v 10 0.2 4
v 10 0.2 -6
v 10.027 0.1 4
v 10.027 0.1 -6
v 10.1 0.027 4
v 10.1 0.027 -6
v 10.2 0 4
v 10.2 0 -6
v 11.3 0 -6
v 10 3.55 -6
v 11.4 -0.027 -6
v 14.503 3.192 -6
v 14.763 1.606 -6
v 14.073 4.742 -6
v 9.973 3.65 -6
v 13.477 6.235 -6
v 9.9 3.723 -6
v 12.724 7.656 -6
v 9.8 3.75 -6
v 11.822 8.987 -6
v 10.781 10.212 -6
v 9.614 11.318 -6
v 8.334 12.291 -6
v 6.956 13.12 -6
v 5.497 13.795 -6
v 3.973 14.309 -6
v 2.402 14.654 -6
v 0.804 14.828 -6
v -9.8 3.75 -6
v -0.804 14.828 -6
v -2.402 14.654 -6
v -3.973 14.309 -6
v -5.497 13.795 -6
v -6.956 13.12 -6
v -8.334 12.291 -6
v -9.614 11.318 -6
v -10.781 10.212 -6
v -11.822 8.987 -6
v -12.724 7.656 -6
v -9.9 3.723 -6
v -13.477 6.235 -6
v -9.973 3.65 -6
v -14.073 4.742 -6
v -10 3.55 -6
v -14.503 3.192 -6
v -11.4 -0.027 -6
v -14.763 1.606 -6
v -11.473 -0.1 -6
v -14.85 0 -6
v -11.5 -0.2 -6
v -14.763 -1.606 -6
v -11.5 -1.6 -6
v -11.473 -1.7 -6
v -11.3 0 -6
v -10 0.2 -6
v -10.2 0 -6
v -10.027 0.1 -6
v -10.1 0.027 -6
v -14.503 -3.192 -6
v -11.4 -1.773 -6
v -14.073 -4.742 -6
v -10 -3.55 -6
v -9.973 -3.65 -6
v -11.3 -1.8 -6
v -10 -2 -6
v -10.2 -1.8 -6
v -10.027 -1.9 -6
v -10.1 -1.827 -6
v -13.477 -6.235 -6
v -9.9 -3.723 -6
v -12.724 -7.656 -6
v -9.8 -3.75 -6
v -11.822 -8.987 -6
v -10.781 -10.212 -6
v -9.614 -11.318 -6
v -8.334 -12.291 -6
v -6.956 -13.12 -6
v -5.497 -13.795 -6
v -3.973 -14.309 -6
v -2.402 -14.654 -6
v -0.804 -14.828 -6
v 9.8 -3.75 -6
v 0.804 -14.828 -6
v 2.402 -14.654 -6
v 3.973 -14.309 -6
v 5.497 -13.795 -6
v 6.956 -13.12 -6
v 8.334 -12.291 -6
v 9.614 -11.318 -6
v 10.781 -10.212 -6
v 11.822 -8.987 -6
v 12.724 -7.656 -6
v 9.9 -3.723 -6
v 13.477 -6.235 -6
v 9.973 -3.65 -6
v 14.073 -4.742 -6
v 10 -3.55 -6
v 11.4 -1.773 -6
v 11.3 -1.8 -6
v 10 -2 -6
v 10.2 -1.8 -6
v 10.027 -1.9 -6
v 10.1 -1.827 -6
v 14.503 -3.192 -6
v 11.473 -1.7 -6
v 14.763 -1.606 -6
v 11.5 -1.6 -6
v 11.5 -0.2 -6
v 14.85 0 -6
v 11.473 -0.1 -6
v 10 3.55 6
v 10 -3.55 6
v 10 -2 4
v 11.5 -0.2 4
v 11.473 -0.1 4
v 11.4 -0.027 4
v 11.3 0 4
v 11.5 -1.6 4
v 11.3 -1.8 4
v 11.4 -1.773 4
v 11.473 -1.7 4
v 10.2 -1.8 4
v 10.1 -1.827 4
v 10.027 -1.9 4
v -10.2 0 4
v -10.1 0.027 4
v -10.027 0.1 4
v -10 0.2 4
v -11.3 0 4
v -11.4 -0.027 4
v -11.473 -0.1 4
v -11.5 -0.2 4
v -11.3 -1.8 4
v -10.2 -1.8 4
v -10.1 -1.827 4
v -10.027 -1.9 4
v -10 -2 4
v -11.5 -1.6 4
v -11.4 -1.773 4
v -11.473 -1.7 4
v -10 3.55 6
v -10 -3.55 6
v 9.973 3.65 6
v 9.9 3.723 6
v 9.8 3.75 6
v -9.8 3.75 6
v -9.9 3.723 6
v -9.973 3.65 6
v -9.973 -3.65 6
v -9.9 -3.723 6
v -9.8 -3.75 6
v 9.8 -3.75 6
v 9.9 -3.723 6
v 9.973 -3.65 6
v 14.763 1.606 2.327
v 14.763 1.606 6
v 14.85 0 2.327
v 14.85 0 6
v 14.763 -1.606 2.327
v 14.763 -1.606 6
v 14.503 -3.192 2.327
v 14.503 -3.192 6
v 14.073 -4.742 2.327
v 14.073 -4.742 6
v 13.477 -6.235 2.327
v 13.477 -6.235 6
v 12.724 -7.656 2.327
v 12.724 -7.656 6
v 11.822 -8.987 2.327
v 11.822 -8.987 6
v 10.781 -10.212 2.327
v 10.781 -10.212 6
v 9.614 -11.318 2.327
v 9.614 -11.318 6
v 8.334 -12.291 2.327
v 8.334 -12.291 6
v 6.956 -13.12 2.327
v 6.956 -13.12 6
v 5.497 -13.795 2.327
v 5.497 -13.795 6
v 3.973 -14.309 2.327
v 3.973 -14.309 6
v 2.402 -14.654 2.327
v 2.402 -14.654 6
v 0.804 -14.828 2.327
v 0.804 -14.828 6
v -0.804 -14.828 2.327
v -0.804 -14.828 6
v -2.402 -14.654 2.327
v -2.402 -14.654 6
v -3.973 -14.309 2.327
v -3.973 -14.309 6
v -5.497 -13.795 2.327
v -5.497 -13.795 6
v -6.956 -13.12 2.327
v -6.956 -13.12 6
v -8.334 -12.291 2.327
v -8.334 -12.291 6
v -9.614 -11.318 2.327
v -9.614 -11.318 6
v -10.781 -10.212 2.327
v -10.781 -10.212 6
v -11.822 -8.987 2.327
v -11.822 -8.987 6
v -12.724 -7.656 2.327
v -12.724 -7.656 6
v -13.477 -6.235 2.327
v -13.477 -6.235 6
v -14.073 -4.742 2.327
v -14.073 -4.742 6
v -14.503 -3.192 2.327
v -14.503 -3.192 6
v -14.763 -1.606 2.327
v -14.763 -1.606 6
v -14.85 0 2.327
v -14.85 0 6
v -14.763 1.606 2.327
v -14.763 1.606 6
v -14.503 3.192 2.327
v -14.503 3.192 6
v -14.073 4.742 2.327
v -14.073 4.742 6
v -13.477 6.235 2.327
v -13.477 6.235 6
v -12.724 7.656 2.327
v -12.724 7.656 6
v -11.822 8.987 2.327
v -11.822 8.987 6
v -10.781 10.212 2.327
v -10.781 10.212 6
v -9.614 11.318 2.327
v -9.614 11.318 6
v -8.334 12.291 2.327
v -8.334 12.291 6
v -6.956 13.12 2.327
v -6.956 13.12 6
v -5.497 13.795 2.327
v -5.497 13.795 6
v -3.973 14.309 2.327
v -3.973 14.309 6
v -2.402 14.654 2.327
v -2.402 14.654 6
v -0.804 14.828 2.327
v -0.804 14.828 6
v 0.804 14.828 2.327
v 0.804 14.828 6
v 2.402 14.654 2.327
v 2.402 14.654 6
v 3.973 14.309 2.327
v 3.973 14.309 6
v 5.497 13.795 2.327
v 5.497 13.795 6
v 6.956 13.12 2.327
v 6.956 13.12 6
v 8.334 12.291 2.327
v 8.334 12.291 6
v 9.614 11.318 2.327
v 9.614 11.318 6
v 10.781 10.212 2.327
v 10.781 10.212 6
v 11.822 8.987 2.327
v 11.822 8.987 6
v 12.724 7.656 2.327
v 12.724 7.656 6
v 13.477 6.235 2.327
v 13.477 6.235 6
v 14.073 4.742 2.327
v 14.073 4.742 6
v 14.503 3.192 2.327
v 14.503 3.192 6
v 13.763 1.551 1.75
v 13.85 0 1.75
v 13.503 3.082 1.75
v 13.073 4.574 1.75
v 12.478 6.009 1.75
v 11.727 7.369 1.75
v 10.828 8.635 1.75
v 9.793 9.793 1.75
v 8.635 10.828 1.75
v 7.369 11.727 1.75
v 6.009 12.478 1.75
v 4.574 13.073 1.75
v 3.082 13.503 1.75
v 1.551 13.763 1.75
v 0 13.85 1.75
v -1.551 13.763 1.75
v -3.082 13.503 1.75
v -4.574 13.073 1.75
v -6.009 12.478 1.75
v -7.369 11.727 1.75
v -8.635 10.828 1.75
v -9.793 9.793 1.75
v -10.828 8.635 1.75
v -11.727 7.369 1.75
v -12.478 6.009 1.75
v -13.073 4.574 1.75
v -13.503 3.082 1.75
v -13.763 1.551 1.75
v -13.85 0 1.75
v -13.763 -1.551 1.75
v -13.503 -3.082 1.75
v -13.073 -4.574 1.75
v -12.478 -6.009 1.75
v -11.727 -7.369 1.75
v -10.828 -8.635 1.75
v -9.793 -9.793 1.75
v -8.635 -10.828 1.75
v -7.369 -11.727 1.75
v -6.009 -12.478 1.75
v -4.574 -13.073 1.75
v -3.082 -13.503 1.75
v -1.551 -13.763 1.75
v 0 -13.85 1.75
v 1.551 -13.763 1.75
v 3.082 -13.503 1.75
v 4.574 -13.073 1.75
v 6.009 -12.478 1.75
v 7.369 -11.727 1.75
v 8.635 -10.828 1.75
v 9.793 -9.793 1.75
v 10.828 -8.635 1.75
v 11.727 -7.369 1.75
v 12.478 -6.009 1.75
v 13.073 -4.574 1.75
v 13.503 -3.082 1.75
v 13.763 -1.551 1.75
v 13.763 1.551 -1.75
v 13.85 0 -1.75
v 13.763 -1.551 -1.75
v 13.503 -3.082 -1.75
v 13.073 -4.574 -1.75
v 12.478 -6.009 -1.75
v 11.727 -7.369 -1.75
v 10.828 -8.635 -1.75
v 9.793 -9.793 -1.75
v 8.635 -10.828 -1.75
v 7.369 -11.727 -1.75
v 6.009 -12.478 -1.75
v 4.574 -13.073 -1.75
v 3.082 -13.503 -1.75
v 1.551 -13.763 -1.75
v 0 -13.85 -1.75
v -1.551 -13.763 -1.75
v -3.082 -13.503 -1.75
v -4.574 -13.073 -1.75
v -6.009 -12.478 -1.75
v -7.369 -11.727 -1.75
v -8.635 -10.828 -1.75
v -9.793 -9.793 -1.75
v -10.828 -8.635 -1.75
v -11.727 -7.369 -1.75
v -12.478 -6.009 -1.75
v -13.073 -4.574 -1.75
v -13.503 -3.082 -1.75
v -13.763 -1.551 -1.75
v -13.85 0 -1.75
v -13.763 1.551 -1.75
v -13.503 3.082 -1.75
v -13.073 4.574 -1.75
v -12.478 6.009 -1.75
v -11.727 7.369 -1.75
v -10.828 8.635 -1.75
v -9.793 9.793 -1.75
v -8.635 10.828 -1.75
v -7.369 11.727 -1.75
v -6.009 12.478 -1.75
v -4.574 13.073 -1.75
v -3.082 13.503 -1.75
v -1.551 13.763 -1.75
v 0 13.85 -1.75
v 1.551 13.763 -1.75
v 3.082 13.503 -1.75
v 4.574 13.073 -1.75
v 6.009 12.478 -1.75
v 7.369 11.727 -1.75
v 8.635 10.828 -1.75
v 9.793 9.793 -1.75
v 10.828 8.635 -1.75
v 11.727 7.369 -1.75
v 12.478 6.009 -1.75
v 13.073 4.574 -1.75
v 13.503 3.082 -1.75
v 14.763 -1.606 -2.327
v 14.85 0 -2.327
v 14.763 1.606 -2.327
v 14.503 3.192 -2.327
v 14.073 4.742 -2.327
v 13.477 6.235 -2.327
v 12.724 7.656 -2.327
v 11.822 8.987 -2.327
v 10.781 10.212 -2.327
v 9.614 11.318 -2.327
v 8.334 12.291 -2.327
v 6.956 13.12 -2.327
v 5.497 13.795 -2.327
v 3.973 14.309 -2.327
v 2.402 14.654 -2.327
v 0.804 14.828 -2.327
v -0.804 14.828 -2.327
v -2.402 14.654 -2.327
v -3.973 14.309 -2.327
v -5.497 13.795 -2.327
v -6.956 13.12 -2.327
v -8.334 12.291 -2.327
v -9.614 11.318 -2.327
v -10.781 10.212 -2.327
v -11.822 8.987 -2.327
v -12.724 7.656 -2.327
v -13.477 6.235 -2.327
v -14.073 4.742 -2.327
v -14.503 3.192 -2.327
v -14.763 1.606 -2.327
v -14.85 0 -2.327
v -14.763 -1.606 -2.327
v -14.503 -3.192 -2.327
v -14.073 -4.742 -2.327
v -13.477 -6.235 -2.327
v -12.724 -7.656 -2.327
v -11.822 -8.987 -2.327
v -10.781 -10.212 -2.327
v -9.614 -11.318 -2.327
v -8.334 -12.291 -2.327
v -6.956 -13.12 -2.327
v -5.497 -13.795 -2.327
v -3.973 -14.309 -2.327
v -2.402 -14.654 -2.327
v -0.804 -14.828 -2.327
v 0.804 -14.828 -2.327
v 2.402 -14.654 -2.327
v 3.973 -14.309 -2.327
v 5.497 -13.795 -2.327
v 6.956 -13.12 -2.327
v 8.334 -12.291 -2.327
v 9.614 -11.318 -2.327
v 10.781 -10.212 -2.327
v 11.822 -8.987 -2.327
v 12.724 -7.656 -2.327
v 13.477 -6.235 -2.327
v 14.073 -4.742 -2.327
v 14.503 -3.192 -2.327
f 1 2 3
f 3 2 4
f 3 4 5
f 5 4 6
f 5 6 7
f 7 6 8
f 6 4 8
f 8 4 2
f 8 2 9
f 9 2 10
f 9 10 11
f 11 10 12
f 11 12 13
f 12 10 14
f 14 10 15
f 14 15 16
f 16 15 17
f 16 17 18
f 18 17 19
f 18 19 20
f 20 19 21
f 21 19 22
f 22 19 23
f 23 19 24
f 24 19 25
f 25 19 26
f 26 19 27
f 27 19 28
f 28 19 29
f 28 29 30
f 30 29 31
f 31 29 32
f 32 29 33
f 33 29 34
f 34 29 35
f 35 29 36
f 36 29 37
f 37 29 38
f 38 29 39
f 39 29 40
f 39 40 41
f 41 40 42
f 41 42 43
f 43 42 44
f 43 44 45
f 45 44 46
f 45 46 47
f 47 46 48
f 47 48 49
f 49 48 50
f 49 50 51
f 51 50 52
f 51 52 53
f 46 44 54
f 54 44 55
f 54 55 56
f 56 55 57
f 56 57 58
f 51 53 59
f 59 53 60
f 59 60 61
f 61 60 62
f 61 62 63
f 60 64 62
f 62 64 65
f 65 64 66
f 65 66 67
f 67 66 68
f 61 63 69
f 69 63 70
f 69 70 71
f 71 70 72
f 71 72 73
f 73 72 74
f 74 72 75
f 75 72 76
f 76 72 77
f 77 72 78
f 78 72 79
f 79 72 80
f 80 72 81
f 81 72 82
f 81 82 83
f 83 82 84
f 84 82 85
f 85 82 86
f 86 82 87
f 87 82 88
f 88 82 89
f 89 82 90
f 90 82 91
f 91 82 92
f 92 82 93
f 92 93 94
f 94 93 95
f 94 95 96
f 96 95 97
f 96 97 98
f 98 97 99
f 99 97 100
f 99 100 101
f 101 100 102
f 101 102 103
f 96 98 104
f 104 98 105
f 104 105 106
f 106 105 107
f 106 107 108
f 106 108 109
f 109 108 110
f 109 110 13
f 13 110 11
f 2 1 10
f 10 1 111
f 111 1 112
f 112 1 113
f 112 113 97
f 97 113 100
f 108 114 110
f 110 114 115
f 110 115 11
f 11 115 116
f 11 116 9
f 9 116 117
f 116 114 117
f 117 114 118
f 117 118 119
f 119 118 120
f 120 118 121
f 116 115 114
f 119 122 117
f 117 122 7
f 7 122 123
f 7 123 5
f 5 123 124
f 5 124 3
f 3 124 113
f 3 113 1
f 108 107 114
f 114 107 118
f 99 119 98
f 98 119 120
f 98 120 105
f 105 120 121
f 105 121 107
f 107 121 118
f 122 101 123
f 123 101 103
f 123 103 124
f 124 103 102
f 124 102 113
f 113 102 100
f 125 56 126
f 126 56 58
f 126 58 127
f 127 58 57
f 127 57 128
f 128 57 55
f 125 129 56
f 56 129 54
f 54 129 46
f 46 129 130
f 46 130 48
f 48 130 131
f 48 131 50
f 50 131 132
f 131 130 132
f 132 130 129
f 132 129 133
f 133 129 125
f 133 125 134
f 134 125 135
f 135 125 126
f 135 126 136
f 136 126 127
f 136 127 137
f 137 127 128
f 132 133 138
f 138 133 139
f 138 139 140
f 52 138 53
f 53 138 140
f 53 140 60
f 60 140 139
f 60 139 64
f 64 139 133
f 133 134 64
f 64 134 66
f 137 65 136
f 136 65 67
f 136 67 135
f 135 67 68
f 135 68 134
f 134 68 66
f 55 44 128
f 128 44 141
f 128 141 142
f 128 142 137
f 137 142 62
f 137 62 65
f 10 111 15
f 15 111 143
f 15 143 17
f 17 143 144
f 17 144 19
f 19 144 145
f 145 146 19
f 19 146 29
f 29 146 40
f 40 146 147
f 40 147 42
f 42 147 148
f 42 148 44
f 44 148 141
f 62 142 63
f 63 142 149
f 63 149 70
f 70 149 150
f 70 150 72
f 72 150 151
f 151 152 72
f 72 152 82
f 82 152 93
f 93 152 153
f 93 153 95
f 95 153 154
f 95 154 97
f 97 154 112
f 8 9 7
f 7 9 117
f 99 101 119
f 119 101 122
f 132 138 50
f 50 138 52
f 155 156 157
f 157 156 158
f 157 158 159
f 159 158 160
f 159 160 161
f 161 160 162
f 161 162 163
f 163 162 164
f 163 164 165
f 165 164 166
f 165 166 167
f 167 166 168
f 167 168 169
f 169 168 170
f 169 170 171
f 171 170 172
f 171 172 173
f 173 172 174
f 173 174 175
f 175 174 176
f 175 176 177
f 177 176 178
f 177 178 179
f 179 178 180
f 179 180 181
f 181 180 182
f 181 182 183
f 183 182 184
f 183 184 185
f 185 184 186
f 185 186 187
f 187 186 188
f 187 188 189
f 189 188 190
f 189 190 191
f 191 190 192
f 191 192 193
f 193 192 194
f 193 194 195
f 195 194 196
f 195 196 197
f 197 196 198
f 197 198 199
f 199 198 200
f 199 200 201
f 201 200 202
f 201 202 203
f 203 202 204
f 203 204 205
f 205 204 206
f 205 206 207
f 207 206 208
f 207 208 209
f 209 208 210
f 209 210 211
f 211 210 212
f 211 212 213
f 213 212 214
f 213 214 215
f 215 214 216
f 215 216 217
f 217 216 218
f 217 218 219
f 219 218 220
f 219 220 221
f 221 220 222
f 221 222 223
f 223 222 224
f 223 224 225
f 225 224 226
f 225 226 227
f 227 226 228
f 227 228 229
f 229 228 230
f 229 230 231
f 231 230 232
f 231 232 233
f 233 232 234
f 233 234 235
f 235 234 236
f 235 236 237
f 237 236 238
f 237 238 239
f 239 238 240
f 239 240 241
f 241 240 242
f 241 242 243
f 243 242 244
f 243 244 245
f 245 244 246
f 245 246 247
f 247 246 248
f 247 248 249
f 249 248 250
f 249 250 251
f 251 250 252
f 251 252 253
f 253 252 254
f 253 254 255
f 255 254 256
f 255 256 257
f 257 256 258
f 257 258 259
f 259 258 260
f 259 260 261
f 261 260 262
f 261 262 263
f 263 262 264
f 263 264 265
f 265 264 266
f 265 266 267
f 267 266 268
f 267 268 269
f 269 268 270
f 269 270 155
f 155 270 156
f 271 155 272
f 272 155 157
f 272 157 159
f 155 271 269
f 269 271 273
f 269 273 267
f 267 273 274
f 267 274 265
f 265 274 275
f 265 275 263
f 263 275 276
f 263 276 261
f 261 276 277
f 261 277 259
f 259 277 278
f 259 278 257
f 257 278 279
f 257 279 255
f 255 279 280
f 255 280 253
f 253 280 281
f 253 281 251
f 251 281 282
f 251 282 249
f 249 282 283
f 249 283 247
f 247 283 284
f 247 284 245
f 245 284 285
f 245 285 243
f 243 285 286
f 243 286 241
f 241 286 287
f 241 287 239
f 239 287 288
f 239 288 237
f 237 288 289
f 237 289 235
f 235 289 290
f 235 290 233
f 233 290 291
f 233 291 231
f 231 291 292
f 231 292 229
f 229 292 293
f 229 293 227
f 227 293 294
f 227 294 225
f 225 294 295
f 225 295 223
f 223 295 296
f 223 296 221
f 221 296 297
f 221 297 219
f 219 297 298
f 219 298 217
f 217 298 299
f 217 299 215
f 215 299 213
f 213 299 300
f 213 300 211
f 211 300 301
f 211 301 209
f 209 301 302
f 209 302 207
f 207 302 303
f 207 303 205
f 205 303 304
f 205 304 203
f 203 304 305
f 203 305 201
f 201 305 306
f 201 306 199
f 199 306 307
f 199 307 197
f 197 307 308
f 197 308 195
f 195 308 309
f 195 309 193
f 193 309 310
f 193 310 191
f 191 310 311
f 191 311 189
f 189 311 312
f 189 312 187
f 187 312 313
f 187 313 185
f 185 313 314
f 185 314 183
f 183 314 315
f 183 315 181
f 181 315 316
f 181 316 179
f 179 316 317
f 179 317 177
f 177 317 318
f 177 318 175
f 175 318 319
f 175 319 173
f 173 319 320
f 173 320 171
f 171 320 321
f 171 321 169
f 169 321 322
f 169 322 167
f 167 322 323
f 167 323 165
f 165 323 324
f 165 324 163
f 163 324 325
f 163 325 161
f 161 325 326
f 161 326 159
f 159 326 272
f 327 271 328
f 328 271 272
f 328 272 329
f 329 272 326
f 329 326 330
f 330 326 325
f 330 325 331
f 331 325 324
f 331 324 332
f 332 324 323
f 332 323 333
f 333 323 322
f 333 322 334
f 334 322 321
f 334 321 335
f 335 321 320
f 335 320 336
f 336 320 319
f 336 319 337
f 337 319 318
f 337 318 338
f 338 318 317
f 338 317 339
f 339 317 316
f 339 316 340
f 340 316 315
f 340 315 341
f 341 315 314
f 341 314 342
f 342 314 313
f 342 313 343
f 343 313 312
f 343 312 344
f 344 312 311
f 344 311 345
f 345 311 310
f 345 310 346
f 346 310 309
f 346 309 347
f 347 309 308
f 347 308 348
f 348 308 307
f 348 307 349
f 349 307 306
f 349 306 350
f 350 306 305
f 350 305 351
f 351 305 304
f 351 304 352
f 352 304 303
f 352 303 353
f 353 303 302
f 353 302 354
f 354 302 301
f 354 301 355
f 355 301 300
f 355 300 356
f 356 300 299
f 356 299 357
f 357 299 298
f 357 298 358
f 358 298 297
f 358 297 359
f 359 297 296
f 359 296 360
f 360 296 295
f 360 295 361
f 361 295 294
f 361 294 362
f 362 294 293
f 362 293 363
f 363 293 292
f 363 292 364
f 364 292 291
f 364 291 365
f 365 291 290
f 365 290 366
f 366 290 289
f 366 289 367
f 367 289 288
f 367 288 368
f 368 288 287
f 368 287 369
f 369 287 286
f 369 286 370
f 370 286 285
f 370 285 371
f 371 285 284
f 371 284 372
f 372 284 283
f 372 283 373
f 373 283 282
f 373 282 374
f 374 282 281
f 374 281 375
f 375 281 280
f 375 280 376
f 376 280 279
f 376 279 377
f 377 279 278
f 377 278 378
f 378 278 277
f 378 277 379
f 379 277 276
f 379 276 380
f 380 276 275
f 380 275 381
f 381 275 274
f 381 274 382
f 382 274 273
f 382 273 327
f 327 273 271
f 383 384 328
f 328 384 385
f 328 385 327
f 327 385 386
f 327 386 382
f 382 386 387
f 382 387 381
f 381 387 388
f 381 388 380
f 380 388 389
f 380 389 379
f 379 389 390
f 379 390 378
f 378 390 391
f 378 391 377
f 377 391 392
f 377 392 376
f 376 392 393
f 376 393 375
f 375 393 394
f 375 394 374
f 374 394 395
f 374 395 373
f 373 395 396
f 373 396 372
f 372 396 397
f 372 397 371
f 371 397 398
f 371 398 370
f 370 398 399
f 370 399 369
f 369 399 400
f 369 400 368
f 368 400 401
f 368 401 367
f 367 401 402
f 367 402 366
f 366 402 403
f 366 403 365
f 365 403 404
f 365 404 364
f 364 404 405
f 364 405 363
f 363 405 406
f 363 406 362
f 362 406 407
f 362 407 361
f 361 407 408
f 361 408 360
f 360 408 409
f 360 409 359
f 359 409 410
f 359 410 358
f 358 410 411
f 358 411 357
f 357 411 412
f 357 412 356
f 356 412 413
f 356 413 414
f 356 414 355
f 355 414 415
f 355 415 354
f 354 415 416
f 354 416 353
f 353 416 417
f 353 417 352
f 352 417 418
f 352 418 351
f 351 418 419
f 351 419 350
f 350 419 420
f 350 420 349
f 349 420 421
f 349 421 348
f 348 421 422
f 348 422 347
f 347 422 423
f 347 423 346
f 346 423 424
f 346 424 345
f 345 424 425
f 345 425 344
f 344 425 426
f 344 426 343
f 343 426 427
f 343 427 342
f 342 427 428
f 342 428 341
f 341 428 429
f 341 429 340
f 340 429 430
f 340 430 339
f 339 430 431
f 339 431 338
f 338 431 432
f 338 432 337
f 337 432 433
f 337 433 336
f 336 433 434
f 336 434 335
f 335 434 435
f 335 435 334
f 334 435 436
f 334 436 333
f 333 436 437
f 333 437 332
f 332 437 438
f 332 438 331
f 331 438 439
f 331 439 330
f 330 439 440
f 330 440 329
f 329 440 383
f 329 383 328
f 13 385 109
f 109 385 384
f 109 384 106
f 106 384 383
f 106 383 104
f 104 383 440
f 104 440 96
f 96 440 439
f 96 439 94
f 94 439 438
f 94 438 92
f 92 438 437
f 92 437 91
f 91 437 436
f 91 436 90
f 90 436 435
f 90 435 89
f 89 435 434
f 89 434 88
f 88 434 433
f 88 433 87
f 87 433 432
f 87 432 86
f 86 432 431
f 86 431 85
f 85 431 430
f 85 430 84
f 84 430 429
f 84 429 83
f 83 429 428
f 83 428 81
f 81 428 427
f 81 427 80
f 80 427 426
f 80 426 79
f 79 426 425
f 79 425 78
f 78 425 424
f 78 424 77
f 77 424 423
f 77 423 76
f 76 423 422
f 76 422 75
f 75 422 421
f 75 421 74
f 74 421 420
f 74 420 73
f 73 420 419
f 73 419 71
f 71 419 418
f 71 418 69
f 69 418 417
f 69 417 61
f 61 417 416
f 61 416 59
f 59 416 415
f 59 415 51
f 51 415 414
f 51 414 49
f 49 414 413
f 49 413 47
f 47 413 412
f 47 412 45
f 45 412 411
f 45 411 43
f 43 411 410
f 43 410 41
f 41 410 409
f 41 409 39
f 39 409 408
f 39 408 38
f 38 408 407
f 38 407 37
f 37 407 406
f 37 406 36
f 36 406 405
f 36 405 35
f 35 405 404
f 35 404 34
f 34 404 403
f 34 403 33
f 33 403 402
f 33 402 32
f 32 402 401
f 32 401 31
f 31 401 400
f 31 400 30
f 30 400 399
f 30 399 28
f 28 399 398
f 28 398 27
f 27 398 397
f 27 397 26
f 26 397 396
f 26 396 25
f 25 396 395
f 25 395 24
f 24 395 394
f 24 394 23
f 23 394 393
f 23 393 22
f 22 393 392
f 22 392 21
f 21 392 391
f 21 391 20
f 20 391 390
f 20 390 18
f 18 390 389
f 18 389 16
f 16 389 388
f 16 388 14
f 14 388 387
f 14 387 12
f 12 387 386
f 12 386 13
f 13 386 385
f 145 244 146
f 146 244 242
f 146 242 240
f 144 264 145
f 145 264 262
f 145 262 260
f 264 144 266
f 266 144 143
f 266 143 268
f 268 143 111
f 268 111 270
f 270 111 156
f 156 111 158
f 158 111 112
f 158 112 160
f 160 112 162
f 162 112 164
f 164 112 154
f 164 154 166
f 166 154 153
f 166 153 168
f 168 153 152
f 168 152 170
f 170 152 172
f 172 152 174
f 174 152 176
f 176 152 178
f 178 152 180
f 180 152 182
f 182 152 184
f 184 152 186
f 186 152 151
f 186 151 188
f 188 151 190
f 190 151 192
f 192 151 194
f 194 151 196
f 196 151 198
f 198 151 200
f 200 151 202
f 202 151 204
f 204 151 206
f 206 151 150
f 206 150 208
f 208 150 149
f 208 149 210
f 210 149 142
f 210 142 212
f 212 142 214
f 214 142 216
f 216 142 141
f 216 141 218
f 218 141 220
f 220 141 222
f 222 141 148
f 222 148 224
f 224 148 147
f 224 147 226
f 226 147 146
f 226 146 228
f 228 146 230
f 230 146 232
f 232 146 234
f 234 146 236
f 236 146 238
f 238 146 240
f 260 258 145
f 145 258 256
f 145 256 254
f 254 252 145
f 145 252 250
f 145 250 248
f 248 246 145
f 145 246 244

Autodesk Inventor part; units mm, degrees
ref_plane "YZ Plane" through (0, 0, 0) normal (1, 0, 0) x (0, 1, 0)
ref_plane "XZ Plane" through (0, 0, 0) normal (0, 1, 0) x (-1, 0, 0)
ref_plane "XY Plane" through (0, 0, 0) normal (0, 0, 1) x (1, 0, 0)
sketch "Skizze2" plane through (0, 0, 0) normal (0, 1, 0) x (-1, 0, 0)
  line L0 (0, -6) -> (-14.85, -6)
  line L1 (-14.85, -6) -> (-14.85, -2.3274)
  line L2 (-14.85, -2.3274) -> (-13.85, -1.75)
  line L3 (-13.85, -1.75) -> (-13.85, 1.75)
  line L4 (-13.85, 1.75) -> (-14.85, 2.3274)
  line L5 (-14.85, 2.3274) -> (-14.85, 6)
  line L6 (-14.85, 6) -> (0, 6)
  line L7 (0, 6) -> (0, -6)
  point P0 (0, 0)
  point P1 (-13.85, 0)
  point P2 (0, 0)
  dimension "d3" = 29.7
  dimension "d4" = 12
  dimension "d5" = 3.5
  dimension "d6" = 120
  dimension "d7" = 120
  dimension "d8" = 1
revolve "Umdrehung1" add sketch "Skizze2" angle 360 about axis through (0, 0, 6) along (0, 0, -1)
sketch "Skizze3" plane through (0, 0, 6) normal (0, 0, 1) x (1, 0, 0)
  line L0 (-10, -3.75) -> (10, -3.75)
  line L1 (10, -3.75) -> (10, 3.75)
  line L2 (10, 3.75) -> (-10, 3.75)
  line L3 (-10, 3.75) -> (-10, -3.75)
  line L4 (-10, -3.75) -> (10, 3.75) construction
  line L5 (10, -3.75) -> (-10, 3.75) construction
  point P0 (0, 0)
  point P1 (0, 0)
  dimension "d10" = 20
  dimension "d11" = 7.5
  dimension "d12" = 0
extrude "Extrusion2" cut sketch "Skizze3" against normal through all
sketch "Skizze4" plane through (0, 0, -6) normal (0, 0, -1) x (-1, 0, 0)
  line L0 (-11.5, -1.8) -> (11.5, -1.8)
  line L1 (11.5, -1.8) -> (11.5, 0)
  line L2 (11.5, 0) -> (-11.5, 0)
  line L3 (-11.5, 0) -> (-11.5, -1.8)
  line L4 (-11.5, -1.8) -> (11.5, 0) construction
  line L5 (11.5, -1.8) -> (-11.5, 0) construction
  circle A0 centre (0, 0) radius 14.85 projected
  point P0 (0, -0.9)
  dimension "d15" = 23
  dimension "d16" = 1.8
extrude "Extrusion3" cut sketch "Skizze4" against normal blind 10 contours L3 L2 L1 L0
fillet "Rundung1" radius 0.2 4 edges at (10, -3.75, 0) (-10, -3.75, 0) (-10, 3.75, 0) (10, 3.75, 0)
fillet "Rundung2" radius 0.2 8 edges at (-10, -1.8, -1) (-11.5, -1.8, -1) (-11.5, 0, -1) (-10, 0, -1) (10, -1.8, -1) (11.5, -1.8, -1) (11.5, 0, -1) (10, 0, -1)
properties part number "FMR_DXWD80_CPW_Halter_C_TdOS_Waveguide"
